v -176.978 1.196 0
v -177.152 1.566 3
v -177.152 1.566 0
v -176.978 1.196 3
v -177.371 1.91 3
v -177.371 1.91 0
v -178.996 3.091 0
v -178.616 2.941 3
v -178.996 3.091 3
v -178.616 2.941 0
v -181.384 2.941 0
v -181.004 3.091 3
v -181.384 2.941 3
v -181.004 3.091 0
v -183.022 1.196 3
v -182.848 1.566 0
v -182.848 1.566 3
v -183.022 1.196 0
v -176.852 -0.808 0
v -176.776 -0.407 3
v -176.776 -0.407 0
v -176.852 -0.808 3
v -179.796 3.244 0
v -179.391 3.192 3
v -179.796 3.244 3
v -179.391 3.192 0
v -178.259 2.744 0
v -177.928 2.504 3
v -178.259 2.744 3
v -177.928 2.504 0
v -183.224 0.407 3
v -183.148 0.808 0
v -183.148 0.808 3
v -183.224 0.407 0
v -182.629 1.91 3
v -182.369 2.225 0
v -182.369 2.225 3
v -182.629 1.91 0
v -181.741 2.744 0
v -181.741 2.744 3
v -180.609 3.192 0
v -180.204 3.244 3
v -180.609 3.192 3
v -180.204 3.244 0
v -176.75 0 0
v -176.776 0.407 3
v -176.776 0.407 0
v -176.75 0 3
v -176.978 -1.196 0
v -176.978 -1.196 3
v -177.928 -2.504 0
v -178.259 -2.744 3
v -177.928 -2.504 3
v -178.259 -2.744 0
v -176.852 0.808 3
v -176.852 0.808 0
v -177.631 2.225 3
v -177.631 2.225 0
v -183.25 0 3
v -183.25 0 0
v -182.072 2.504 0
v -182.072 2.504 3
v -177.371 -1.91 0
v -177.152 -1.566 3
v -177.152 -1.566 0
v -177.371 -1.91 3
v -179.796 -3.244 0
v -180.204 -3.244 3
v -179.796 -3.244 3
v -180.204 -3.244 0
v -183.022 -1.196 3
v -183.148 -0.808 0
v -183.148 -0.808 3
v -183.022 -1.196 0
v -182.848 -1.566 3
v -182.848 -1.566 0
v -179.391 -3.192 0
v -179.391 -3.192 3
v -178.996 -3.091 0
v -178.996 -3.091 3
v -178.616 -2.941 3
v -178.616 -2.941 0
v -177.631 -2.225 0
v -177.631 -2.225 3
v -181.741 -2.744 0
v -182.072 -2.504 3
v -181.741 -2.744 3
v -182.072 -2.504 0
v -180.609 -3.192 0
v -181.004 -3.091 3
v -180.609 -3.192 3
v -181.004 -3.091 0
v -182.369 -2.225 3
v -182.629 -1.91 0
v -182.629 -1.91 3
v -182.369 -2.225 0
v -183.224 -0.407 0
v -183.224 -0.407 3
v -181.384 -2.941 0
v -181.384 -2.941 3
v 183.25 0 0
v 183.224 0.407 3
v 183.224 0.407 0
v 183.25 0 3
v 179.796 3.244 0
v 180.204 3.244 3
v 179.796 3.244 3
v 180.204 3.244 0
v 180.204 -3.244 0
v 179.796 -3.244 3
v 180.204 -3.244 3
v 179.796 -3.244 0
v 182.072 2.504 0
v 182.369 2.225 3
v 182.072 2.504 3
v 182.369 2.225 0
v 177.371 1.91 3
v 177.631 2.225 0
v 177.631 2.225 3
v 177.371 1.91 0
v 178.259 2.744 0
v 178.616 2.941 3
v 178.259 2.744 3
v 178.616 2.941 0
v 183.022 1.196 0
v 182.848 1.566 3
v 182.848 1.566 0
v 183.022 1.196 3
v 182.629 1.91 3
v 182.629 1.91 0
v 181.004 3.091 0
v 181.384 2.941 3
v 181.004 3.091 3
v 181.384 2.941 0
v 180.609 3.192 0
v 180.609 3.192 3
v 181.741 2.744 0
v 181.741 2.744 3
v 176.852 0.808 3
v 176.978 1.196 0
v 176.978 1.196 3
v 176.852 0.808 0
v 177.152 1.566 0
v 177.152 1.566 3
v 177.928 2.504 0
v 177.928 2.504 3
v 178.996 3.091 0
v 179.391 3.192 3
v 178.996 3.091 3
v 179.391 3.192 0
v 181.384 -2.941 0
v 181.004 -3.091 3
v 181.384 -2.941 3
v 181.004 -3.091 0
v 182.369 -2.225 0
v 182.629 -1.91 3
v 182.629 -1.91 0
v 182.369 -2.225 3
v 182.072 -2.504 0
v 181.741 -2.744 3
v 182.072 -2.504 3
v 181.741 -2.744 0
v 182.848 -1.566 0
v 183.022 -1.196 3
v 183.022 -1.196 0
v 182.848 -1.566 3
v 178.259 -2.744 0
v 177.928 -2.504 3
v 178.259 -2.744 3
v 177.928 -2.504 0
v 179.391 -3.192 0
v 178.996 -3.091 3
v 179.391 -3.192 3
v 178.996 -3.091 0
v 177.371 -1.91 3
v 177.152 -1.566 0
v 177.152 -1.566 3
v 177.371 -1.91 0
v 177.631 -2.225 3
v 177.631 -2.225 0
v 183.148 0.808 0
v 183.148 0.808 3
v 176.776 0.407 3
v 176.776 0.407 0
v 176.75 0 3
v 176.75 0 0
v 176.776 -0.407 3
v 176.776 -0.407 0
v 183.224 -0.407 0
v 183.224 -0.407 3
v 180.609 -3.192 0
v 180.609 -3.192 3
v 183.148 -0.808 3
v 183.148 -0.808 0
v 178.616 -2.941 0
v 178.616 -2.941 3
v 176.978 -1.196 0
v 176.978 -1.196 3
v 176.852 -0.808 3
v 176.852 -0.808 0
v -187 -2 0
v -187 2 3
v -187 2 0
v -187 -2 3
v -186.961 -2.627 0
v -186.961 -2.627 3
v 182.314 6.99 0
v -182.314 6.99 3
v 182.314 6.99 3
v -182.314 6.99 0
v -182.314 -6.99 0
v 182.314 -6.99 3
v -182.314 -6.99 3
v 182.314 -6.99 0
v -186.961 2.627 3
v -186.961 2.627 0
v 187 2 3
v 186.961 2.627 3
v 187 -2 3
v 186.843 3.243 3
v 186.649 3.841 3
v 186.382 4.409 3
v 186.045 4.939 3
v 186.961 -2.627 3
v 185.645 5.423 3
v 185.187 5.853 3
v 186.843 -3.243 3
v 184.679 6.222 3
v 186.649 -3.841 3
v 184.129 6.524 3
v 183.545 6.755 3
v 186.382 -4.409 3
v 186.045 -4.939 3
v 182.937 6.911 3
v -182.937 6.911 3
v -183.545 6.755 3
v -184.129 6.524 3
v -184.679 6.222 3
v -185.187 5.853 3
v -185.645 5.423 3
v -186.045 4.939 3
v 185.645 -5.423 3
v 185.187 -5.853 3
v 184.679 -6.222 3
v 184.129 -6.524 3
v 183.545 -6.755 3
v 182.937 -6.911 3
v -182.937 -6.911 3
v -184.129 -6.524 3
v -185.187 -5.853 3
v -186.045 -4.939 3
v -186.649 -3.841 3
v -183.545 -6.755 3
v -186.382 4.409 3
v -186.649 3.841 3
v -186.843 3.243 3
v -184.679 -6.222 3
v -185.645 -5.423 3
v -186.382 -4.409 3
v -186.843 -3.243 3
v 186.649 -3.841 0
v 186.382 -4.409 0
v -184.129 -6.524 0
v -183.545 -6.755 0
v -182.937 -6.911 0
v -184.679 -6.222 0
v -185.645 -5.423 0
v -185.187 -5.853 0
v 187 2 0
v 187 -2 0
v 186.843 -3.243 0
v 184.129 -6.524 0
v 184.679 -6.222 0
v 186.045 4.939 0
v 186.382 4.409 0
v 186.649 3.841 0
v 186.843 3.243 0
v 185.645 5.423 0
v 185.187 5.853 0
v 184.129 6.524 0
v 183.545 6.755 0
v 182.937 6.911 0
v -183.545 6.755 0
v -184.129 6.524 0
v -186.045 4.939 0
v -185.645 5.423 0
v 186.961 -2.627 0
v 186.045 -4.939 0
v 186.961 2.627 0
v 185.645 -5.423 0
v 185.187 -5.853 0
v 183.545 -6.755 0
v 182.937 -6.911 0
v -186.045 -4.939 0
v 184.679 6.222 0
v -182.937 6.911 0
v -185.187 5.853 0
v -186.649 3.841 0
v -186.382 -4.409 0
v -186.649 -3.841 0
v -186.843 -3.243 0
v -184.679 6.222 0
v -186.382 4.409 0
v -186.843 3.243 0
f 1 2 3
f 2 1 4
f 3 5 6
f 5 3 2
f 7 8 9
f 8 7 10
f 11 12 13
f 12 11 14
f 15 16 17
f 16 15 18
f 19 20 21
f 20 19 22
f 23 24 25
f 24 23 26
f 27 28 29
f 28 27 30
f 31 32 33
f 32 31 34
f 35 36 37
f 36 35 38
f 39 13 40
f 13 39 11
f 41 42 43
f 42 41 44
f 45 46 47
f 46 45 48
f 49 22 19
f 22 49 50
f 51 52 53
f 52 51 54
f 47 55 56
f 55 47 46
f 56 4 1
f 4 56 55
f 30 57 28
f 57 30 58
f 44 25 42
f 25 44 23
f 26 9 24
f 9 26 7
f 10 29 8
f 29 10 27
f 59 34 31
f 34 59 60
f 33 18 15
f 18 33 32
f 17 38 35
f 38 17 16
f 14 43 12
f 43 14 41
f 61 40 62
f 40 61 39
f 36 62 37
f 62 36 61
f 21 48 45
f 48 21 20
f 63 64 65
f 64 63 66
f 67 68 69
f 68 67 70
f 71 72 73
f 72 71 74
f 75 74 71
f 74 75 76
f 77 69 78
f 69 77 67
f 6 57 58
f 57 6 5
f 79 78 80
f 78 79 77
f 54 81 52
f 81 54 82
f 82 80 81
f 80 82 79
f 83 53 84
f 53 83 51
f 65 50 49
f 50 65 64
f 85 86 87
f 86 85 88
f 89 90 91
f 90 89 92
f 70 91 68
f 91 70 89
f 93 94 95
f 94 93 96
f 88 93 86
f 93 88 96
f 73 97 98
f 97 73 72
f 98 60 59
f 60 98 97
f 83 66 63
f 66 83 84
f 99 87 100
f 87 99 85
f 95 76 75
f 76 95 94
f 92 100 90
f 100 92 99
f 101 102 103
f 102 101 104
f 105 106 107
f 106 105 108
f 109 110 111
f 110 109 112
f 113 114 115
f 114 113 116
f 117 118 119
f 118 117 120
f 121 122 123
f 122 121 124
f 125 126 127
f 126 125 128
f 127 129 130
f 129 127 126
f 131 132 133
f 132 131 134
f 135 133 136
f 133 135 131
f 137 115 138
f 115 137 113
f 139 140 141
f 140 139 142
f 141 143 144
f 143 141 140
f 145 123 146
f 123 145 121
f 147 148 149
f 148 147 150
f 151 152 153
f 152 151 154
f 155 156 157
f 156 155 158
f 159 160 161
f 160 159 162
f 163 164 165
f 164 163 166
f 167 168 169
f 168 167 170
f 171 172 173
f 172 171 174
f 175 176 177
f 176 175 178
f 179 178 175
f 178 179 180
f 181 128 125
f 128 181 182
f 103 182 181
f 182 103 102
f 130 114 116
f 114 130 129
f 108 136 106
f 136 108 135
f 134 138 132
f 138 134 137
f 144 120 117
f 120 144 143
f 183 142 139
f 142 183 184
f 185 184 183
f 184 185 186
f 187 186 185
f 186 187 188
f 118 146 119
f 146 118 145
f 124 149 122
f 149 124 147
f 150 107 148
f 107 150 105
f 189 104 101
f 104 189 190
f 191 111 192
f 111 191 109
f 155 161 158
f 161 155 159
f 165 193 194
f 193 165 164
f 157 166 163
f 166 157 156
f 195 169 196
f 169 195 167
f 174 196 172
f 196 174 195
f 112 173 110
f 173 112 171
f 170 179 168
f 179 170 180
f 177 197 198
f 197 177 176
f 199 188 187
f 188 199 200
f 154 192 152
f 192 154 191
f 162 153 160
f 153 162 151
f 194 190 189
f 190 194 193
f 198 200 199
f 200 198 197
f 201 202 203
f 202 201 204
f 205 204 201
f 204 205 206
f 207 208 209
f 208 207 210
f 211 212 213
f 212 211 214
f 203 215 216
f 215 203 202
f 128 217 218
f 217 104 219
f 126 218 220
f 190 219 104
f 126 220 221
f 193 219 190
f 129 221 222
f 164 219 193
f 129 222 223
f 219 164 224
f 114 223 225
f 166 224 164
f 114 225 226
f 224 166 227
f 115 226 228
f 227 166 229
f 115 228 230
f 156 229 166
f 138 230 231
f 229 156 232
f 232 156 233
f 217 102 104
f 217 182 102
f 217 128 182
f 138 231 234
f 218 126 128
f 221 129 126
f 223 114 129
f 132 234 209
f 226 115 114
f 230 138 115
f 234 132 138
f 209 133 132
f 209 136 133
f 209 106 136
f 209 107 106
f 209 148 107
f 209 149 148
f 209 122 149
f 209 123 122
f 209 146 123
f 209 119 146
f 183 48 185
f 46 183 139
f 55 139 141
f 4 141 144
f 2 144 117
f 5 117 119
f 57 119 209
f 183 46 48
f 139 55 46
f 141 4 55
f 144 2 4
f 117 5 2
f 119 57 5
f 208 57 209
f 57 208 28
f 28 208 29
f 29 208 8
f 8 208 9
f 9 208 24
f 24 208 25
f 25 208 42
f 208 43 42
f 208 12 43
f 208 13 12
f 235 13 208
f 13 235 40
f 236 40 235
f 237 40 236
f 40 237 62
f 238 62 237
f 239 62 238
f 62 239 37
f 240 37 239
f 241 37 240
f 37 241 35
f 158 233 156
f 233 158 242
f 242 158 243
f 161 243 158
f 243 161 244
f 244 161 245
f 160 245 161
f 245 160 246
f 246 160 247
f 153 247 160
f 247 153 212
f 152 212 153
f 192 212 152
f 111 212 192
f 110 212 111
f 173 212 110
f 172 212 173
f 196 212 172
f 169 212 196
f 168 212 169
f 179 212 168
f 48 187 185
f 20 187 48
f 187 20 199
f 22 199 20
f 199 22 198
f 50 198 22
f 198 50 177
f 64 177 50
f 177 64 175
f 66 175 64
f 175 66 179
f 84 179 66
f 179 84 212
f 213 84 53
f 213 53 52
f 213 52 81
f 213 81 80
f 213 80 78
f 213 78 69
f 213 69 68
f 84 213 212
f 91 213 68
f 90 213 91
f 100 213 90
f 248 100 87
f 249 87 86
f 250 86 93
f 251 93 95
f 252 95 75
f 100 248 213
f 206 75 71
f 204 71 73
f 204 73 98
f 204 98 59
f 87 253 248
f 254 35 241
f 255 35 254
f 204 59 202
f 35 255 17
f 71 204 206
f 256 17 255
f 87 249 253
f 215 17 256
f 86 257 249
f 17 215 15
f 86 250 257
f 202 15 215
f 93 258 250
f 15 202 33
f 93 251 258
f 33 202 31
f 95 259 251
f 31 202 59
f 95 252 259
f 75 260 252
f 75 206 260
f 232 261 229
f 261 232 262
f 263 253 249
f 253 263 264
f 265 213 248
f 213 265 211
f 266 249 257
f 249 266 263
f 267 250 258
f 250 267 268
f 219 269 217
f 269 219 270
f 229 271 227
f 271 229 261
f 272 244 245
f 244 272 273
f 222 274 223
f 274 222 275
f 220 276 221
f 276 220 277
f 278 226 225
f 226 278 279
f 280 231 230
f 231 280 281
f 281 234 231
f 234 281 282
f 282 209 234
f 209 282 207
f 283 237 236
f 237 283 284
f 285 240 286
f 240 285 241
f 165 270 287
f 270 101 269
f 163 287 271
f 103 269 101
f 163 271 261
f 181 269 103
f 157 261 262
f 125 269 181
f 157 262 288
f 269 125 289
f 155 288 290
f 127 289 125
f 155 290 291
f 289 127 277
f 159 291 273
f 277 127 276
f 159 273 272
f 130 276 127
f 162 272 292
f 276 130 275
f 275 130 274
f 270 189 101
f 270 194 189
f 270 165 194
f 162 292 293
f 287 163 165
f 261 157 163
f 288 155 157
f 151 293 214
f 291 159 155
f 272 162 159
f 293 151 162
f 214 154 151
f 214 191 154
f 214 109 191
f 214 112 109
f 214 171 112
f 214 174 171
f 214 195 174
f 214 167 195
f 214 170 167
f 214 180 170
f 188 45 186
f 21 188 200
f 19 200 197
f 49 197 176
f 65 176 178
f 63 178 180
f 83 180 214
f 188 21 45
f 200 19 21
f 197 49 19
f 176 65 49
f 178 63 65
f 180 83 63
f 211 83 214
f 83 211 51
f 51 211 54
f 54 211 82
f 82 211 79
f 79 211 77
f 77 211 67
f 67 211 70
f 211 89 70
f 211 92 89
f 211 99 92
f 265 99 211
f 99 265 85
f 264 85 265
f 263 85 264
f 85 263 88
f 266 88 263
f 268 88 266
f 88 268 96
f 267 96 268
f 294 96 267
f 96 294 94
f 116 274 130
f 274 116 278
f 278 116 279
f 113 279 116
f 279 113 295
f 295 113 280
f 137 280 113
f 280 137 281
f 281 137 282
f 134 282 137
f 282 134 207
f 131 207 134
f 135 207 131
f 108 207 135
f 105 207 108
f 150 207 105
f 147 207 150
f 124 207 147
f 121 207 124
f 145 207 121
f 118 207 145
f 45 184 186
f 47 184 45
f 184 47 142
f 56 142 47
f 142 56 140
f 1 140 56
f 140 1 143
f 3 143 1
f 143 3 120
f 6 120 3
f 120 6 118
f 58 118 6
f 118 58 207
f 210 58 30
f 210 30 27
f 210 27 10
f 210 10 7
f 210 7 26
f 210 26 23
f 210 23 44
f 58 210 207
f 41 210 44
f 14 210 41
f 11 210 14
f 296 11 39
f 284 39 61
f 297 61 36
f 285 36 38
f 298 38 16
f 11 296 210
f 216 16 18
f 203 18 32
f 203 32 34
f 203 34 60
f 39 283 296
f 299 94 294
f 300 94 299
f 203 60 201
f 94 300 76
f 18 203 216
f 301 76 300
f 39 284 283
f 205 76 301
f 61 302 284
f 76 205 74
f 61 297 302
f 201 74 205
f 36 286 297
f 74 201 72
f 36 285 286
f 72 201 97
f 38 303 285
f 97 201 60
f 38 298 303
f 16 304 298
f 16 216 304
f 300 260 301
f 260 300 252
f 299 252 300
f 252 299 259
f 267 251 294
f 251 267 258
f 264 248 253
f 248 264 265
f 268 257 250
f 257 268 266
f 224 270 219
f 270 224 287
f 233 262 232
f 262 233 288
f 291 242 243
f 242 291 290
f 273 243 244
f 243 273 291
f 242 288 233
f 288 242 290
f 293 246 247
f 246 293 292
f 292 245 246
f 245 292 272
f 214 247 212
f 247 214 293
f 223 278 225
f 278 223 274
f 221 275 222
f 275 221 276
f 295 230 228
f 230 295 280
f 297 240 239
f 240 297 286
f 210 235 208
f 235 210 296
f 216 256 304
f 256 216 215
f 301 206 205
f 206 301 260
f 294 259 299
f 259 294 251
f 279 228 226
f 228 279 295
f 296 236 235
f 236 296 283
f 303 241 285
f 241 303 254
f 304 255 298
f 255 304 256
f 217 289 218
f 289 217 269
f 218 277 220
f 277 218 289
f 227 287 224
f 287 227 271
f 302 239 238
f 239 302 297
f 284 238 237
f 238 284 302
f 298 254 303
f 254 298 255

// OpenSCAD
$fn = 50;


difference() {
	union() {
		hull() {
			translate(v = [-182.0000000000, 2.0000000000, 0]) {
				cylinder(h = 3, r = 5);
			}
			translate(v = [182.0000000000, 2.0000000000, 0]) {
				cylinder(h = 3, r = 5);
			}
			translate(v = [-182.0000000000, -2.0000000000, 0]) {
				cylinder(h = 3, r = 5);
			}
			translate(v = [182.0000000000, -2.0000000000, 0]) {
				cylinder(h = 3, r = 5);
			}
		}
	}
	union() {
		translate(v = [-180.0000000000, 0.0000000000, -100.0000000000]) {
			cylinder(h = 200, r = 3.2500000000);
		}
		translate(v = [-180.0000000000, 0.0000000000, -100.0000000000]) {
			cylinder(h = 200, r = 3.2500000000);
		}
		translate(v = [180.0000000000, 0.0000000000, -100.0000000000]) {
			cylinder(h = 200, r = 3.2500000000);
		}
		translate(v = [180.0000000000, 0.0000000000, -100.0000000000]) {
			cylinder(h = 200, r = 3.2500000000);
		}
	}
}
